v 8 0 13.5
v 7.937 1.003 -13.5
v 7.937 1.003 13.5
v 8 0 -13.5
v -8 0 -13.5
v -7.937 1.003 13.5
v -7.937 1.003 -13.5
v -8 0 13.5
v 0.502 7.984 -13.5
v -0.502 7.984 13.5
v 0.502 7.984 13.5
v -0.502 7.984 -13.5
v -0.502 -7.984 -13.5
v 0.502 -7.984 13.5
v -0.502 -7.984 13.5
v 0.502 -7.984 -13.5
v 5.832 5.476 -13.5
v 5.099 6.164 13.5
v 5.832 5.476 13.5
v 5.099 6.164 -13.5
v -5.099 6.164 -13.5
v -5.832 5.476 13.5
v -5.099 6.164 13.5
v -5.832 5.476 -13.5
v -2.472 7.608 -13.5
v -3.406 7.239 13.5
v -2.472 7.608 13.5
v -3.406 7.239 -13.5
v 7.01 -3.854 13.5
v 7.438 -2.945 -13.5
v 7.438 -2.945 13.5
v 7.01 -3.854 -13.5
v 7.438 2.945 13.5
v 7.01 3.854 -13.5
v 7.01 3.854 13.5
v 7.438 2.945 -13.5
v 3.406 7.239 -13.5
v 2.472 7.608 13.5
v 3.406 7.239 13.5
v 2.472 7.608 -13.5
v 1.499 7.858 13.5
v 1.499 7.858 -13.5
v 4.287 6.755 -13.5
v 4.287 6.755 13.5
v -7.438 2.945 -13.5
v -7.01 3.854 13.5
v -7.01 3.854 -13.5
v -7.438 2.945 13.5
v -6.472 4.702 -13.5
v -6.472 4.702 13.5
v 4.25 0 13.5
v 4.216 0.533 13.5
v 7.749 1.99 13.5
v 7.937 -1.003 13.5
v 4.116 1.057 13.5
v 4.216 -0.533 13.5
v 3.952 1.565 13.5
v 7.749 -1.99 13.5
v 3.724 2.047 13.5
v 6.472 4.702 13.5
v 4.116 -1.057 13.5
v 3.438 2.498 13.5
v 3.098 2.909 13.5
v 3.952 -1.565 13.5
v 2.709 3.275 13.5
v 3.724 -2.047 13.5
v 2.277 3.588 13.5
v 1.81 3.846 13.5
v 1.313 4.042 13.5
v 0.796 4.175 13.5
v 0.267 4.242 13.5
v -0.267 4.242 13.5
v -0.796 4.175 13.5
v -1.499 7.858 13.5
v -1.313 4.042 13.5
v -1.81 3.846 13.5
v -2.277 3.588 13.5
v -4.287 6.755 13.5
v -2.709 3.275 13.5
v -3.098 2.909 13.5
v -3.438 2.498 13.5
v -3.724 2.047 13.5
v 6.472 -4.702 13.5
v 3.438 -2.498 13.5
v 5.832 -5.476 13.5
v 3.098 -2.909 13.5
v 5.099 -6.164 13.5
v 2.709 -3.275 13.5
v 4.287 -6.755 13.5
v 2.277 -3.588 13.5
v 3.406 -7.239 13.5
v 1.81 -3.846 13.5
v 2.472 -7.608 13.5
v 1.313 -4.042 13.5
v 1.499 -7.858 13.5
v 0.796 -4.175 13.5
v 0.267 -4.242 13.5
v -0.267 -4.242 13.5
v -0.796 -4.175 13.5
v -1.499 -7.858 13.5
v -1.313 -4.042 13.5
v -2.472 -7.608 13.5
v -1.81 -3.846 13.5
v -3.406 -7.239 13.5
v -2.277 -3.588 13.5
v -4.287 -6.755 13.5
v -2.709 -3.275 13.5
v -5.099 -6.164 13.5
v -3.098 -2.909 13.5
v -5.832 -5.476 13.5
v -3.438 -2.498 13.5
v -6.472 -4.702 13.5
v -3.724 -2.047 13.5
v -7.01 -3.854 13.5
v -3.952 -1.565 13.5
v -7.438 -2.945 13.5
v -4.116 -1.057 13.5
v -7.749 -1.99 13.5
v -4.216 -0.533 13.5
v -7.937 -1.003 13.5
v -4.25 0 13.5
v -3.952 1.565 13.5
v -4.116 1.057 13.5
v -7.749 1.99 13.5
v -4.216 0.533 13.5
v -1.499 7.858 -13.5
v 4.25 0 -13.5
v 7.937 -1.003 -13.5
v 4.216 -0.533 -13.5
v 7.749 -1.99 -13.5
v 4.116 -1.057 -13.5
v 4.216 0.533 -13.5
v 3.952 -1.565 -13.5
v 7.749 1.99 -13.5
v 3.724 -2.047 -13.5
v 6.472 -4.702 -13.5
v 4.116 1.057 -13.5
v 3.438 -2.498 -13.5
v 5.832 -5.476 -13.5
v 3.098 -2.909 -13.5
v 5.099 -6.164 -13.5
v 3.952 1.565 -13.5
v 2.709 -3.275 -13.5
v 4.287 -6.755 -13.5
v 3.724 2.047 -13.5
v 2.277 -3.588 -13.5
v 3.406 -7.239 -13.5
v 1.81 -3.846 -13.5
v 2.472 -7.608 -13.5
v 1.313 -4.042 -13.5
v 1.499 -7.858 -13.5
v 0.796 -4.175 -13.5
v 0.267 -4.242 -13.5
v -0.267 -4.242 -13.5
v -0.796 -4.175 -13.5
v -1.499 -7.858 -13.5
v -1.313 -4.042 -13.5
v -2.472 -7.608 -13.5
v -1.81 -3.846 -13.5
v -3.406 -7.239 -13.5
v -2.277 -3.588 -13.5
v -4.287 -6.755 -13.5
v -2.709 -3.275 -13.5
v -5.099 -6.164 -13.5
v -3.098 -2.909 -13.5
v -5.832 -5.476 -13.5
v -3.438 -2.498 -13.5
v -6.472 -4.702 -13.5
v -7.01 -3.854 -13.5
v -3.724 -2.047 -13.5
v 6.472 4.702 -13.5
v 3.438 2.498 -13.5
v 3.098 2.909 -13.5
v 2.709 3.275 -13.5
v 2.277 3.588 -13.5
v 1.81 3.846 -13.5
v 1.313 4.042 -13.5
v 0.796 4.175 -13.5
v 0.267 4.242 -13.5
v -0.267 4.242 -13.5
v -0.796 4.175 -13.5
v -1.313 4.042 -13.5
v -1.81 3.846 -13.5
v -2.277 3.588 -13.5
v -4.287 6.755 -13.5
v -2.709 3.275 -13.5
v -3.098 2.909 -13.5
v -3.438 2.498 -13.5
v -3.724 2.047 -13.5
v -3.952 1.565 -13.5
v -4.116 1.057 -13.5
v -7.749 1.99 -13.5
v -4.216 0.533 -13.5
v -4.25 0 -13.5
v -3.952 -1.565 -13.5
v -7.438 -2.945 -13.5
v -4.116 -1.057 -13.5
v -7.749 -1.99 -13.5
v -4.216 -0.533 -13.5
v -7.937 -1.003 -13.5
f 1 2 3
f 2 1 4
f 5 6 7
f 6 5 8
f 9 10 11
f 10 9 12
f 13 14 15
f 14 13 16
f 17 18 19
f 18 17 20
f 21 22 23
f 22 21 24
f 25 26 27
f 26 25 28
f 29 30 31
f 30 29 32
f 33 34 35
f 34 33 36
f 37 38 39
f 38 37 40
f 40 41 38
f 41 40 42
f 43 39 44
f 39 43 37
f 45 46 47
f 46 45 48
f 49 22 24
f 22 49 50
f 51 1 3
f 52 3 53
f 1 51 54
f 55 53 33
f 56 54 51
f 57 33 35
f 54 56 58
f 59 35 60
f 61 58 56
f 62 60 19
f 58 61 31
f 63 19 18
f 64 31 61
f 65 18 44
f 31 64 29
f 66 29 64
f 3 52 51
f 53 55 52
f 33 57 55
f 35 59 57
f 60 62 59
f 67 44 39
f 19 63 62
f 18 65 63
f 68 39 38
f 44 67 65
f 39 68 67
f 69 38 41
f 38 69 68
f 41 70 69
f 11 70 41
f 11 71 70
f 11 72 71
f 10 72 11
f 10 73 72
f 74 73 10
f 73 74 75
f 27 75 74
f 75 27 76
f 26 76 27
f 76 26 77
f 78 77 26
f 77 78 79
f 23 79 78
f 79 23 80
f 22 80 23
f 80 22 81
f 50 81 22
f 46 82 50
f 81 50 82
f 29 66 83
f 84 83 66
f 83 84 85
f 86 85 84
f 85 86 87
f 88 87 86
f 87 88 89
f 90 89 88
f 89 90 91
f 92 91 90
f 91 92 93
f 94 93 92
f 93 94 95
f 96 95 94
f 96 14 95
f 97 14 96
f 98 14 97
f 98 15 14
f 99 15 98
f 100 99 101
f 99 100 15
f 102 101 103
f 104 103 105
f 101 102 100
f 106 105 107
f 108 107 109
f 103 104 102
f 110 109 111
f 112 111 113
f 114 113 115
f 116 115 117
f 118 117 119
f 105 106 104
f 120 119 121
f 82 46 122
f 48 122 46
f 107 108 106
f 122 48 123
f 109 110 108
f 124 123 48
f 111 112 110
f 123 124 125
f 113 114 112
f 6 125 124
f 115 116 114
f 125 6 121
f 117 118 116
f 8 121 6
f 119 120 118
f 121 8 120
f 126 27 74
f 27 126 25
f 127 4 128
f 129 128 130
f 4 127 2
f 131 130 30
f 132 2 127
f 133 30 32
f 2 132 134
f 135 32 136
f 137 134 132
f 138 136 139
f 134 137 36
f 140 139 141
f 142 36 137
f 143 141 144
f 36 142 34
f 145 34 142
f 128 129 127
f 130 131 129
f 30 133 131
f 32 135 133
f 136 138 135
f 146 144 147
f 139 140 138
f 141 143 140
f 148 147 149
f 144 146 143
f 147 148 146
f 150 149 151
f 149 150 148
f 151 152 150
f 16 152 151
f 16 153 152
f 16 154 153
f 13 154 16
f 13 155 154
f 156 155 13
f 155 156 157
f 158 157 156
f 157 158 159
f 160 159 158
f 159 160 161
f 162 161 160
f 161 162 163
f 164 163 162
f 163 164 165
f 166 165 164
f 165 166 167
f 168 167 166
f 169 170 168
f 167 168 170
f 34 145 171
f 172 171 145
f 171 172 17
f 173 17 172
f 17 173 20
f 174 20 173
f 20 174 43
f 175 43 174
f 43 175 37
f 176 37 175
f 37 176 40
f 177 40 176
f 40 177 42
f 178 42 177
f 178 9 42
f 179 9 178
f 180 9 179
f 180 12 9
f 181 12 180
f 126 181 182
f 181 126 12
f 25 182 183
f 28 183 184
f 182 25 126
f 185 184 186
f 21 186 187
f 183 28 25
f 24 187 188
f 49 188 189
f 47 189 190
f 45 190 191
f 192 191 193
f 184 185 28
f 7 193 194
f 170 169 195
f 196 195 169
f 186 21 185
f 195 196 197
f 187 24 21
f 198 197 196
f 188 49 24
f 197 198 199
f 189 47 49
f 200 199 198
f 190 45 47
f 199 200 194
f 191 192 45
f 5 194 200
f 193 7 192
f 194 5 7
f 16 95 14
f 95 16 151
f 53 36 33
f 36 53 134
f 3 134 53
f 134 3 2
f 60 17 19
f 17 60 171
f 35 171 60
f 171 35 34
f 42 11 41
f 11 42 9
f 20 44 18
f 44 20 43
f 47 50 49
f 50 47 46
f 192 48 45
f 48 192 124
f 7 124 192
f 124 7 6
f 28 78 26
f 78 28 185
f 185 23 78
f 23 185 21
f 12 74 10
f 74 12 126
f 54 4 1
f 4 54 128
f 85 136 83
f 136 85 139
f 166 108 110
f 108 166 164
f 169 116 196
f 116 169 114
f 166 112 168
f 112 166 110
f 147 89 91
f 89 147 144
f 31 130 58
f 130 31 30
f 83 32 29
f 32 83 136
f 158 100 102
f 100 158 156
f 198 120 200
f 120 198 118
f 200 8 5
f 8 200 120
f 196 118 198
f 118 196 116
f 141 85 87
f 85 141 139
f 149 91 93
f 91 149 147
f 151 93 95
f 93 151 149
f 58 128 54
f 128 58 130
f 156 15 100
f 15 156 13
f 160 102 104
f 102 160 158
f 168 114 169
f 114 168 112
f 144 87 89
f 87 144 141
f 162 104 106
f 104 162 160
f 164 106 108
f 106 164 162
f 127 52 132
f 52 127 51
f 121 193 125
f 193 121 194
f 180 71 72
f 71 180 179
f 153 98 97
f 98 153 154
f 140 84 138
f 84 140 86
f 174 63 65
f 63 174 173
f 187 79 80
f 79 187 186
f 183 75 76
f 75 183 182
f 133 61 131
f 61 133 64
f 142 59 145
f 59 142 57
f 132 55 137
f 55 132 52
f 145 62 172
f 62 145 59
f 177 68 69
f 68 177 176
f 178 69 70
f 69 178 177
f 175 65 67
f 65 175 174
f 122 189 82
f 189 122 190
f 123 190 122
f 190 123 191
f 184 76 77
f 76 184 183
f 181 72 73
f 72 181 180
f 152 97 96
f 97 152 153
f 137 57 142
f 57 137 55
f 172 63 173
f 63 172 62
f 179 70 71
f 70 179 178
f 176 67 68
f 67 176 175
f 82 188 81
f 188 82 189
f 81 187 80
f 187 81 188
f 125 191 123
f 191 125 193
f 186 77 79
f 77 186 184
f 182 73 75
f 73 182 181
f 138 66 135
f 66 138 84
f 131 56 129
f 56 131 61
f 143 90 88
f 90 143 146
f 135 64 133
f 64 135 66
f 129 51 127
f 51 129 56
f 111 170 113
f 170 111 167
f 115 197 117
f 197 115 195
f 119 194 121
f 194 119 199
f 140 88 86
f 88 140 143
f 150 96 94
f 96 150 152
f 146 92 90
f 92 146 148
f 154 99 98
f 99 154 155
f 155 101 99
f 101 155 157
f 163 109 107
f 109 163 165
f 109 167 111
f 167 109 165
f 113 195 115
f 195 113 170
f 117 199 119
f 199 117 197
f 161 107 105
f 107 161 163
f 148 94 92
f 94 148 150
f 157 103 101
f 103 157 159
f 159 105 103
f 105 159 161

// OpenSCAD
$fn = 50;


difference() {
	union() {
		translate(v = [0, 0, -13.5000000000]) {
			cylinder(h = 27, r = 8.0000000000);
		}
	}
	union() {
		translate(v = [0, 0, -100.0000000000]) {
			cylinder(h = 200, r = 4.2500000000);
		}
	}
}
